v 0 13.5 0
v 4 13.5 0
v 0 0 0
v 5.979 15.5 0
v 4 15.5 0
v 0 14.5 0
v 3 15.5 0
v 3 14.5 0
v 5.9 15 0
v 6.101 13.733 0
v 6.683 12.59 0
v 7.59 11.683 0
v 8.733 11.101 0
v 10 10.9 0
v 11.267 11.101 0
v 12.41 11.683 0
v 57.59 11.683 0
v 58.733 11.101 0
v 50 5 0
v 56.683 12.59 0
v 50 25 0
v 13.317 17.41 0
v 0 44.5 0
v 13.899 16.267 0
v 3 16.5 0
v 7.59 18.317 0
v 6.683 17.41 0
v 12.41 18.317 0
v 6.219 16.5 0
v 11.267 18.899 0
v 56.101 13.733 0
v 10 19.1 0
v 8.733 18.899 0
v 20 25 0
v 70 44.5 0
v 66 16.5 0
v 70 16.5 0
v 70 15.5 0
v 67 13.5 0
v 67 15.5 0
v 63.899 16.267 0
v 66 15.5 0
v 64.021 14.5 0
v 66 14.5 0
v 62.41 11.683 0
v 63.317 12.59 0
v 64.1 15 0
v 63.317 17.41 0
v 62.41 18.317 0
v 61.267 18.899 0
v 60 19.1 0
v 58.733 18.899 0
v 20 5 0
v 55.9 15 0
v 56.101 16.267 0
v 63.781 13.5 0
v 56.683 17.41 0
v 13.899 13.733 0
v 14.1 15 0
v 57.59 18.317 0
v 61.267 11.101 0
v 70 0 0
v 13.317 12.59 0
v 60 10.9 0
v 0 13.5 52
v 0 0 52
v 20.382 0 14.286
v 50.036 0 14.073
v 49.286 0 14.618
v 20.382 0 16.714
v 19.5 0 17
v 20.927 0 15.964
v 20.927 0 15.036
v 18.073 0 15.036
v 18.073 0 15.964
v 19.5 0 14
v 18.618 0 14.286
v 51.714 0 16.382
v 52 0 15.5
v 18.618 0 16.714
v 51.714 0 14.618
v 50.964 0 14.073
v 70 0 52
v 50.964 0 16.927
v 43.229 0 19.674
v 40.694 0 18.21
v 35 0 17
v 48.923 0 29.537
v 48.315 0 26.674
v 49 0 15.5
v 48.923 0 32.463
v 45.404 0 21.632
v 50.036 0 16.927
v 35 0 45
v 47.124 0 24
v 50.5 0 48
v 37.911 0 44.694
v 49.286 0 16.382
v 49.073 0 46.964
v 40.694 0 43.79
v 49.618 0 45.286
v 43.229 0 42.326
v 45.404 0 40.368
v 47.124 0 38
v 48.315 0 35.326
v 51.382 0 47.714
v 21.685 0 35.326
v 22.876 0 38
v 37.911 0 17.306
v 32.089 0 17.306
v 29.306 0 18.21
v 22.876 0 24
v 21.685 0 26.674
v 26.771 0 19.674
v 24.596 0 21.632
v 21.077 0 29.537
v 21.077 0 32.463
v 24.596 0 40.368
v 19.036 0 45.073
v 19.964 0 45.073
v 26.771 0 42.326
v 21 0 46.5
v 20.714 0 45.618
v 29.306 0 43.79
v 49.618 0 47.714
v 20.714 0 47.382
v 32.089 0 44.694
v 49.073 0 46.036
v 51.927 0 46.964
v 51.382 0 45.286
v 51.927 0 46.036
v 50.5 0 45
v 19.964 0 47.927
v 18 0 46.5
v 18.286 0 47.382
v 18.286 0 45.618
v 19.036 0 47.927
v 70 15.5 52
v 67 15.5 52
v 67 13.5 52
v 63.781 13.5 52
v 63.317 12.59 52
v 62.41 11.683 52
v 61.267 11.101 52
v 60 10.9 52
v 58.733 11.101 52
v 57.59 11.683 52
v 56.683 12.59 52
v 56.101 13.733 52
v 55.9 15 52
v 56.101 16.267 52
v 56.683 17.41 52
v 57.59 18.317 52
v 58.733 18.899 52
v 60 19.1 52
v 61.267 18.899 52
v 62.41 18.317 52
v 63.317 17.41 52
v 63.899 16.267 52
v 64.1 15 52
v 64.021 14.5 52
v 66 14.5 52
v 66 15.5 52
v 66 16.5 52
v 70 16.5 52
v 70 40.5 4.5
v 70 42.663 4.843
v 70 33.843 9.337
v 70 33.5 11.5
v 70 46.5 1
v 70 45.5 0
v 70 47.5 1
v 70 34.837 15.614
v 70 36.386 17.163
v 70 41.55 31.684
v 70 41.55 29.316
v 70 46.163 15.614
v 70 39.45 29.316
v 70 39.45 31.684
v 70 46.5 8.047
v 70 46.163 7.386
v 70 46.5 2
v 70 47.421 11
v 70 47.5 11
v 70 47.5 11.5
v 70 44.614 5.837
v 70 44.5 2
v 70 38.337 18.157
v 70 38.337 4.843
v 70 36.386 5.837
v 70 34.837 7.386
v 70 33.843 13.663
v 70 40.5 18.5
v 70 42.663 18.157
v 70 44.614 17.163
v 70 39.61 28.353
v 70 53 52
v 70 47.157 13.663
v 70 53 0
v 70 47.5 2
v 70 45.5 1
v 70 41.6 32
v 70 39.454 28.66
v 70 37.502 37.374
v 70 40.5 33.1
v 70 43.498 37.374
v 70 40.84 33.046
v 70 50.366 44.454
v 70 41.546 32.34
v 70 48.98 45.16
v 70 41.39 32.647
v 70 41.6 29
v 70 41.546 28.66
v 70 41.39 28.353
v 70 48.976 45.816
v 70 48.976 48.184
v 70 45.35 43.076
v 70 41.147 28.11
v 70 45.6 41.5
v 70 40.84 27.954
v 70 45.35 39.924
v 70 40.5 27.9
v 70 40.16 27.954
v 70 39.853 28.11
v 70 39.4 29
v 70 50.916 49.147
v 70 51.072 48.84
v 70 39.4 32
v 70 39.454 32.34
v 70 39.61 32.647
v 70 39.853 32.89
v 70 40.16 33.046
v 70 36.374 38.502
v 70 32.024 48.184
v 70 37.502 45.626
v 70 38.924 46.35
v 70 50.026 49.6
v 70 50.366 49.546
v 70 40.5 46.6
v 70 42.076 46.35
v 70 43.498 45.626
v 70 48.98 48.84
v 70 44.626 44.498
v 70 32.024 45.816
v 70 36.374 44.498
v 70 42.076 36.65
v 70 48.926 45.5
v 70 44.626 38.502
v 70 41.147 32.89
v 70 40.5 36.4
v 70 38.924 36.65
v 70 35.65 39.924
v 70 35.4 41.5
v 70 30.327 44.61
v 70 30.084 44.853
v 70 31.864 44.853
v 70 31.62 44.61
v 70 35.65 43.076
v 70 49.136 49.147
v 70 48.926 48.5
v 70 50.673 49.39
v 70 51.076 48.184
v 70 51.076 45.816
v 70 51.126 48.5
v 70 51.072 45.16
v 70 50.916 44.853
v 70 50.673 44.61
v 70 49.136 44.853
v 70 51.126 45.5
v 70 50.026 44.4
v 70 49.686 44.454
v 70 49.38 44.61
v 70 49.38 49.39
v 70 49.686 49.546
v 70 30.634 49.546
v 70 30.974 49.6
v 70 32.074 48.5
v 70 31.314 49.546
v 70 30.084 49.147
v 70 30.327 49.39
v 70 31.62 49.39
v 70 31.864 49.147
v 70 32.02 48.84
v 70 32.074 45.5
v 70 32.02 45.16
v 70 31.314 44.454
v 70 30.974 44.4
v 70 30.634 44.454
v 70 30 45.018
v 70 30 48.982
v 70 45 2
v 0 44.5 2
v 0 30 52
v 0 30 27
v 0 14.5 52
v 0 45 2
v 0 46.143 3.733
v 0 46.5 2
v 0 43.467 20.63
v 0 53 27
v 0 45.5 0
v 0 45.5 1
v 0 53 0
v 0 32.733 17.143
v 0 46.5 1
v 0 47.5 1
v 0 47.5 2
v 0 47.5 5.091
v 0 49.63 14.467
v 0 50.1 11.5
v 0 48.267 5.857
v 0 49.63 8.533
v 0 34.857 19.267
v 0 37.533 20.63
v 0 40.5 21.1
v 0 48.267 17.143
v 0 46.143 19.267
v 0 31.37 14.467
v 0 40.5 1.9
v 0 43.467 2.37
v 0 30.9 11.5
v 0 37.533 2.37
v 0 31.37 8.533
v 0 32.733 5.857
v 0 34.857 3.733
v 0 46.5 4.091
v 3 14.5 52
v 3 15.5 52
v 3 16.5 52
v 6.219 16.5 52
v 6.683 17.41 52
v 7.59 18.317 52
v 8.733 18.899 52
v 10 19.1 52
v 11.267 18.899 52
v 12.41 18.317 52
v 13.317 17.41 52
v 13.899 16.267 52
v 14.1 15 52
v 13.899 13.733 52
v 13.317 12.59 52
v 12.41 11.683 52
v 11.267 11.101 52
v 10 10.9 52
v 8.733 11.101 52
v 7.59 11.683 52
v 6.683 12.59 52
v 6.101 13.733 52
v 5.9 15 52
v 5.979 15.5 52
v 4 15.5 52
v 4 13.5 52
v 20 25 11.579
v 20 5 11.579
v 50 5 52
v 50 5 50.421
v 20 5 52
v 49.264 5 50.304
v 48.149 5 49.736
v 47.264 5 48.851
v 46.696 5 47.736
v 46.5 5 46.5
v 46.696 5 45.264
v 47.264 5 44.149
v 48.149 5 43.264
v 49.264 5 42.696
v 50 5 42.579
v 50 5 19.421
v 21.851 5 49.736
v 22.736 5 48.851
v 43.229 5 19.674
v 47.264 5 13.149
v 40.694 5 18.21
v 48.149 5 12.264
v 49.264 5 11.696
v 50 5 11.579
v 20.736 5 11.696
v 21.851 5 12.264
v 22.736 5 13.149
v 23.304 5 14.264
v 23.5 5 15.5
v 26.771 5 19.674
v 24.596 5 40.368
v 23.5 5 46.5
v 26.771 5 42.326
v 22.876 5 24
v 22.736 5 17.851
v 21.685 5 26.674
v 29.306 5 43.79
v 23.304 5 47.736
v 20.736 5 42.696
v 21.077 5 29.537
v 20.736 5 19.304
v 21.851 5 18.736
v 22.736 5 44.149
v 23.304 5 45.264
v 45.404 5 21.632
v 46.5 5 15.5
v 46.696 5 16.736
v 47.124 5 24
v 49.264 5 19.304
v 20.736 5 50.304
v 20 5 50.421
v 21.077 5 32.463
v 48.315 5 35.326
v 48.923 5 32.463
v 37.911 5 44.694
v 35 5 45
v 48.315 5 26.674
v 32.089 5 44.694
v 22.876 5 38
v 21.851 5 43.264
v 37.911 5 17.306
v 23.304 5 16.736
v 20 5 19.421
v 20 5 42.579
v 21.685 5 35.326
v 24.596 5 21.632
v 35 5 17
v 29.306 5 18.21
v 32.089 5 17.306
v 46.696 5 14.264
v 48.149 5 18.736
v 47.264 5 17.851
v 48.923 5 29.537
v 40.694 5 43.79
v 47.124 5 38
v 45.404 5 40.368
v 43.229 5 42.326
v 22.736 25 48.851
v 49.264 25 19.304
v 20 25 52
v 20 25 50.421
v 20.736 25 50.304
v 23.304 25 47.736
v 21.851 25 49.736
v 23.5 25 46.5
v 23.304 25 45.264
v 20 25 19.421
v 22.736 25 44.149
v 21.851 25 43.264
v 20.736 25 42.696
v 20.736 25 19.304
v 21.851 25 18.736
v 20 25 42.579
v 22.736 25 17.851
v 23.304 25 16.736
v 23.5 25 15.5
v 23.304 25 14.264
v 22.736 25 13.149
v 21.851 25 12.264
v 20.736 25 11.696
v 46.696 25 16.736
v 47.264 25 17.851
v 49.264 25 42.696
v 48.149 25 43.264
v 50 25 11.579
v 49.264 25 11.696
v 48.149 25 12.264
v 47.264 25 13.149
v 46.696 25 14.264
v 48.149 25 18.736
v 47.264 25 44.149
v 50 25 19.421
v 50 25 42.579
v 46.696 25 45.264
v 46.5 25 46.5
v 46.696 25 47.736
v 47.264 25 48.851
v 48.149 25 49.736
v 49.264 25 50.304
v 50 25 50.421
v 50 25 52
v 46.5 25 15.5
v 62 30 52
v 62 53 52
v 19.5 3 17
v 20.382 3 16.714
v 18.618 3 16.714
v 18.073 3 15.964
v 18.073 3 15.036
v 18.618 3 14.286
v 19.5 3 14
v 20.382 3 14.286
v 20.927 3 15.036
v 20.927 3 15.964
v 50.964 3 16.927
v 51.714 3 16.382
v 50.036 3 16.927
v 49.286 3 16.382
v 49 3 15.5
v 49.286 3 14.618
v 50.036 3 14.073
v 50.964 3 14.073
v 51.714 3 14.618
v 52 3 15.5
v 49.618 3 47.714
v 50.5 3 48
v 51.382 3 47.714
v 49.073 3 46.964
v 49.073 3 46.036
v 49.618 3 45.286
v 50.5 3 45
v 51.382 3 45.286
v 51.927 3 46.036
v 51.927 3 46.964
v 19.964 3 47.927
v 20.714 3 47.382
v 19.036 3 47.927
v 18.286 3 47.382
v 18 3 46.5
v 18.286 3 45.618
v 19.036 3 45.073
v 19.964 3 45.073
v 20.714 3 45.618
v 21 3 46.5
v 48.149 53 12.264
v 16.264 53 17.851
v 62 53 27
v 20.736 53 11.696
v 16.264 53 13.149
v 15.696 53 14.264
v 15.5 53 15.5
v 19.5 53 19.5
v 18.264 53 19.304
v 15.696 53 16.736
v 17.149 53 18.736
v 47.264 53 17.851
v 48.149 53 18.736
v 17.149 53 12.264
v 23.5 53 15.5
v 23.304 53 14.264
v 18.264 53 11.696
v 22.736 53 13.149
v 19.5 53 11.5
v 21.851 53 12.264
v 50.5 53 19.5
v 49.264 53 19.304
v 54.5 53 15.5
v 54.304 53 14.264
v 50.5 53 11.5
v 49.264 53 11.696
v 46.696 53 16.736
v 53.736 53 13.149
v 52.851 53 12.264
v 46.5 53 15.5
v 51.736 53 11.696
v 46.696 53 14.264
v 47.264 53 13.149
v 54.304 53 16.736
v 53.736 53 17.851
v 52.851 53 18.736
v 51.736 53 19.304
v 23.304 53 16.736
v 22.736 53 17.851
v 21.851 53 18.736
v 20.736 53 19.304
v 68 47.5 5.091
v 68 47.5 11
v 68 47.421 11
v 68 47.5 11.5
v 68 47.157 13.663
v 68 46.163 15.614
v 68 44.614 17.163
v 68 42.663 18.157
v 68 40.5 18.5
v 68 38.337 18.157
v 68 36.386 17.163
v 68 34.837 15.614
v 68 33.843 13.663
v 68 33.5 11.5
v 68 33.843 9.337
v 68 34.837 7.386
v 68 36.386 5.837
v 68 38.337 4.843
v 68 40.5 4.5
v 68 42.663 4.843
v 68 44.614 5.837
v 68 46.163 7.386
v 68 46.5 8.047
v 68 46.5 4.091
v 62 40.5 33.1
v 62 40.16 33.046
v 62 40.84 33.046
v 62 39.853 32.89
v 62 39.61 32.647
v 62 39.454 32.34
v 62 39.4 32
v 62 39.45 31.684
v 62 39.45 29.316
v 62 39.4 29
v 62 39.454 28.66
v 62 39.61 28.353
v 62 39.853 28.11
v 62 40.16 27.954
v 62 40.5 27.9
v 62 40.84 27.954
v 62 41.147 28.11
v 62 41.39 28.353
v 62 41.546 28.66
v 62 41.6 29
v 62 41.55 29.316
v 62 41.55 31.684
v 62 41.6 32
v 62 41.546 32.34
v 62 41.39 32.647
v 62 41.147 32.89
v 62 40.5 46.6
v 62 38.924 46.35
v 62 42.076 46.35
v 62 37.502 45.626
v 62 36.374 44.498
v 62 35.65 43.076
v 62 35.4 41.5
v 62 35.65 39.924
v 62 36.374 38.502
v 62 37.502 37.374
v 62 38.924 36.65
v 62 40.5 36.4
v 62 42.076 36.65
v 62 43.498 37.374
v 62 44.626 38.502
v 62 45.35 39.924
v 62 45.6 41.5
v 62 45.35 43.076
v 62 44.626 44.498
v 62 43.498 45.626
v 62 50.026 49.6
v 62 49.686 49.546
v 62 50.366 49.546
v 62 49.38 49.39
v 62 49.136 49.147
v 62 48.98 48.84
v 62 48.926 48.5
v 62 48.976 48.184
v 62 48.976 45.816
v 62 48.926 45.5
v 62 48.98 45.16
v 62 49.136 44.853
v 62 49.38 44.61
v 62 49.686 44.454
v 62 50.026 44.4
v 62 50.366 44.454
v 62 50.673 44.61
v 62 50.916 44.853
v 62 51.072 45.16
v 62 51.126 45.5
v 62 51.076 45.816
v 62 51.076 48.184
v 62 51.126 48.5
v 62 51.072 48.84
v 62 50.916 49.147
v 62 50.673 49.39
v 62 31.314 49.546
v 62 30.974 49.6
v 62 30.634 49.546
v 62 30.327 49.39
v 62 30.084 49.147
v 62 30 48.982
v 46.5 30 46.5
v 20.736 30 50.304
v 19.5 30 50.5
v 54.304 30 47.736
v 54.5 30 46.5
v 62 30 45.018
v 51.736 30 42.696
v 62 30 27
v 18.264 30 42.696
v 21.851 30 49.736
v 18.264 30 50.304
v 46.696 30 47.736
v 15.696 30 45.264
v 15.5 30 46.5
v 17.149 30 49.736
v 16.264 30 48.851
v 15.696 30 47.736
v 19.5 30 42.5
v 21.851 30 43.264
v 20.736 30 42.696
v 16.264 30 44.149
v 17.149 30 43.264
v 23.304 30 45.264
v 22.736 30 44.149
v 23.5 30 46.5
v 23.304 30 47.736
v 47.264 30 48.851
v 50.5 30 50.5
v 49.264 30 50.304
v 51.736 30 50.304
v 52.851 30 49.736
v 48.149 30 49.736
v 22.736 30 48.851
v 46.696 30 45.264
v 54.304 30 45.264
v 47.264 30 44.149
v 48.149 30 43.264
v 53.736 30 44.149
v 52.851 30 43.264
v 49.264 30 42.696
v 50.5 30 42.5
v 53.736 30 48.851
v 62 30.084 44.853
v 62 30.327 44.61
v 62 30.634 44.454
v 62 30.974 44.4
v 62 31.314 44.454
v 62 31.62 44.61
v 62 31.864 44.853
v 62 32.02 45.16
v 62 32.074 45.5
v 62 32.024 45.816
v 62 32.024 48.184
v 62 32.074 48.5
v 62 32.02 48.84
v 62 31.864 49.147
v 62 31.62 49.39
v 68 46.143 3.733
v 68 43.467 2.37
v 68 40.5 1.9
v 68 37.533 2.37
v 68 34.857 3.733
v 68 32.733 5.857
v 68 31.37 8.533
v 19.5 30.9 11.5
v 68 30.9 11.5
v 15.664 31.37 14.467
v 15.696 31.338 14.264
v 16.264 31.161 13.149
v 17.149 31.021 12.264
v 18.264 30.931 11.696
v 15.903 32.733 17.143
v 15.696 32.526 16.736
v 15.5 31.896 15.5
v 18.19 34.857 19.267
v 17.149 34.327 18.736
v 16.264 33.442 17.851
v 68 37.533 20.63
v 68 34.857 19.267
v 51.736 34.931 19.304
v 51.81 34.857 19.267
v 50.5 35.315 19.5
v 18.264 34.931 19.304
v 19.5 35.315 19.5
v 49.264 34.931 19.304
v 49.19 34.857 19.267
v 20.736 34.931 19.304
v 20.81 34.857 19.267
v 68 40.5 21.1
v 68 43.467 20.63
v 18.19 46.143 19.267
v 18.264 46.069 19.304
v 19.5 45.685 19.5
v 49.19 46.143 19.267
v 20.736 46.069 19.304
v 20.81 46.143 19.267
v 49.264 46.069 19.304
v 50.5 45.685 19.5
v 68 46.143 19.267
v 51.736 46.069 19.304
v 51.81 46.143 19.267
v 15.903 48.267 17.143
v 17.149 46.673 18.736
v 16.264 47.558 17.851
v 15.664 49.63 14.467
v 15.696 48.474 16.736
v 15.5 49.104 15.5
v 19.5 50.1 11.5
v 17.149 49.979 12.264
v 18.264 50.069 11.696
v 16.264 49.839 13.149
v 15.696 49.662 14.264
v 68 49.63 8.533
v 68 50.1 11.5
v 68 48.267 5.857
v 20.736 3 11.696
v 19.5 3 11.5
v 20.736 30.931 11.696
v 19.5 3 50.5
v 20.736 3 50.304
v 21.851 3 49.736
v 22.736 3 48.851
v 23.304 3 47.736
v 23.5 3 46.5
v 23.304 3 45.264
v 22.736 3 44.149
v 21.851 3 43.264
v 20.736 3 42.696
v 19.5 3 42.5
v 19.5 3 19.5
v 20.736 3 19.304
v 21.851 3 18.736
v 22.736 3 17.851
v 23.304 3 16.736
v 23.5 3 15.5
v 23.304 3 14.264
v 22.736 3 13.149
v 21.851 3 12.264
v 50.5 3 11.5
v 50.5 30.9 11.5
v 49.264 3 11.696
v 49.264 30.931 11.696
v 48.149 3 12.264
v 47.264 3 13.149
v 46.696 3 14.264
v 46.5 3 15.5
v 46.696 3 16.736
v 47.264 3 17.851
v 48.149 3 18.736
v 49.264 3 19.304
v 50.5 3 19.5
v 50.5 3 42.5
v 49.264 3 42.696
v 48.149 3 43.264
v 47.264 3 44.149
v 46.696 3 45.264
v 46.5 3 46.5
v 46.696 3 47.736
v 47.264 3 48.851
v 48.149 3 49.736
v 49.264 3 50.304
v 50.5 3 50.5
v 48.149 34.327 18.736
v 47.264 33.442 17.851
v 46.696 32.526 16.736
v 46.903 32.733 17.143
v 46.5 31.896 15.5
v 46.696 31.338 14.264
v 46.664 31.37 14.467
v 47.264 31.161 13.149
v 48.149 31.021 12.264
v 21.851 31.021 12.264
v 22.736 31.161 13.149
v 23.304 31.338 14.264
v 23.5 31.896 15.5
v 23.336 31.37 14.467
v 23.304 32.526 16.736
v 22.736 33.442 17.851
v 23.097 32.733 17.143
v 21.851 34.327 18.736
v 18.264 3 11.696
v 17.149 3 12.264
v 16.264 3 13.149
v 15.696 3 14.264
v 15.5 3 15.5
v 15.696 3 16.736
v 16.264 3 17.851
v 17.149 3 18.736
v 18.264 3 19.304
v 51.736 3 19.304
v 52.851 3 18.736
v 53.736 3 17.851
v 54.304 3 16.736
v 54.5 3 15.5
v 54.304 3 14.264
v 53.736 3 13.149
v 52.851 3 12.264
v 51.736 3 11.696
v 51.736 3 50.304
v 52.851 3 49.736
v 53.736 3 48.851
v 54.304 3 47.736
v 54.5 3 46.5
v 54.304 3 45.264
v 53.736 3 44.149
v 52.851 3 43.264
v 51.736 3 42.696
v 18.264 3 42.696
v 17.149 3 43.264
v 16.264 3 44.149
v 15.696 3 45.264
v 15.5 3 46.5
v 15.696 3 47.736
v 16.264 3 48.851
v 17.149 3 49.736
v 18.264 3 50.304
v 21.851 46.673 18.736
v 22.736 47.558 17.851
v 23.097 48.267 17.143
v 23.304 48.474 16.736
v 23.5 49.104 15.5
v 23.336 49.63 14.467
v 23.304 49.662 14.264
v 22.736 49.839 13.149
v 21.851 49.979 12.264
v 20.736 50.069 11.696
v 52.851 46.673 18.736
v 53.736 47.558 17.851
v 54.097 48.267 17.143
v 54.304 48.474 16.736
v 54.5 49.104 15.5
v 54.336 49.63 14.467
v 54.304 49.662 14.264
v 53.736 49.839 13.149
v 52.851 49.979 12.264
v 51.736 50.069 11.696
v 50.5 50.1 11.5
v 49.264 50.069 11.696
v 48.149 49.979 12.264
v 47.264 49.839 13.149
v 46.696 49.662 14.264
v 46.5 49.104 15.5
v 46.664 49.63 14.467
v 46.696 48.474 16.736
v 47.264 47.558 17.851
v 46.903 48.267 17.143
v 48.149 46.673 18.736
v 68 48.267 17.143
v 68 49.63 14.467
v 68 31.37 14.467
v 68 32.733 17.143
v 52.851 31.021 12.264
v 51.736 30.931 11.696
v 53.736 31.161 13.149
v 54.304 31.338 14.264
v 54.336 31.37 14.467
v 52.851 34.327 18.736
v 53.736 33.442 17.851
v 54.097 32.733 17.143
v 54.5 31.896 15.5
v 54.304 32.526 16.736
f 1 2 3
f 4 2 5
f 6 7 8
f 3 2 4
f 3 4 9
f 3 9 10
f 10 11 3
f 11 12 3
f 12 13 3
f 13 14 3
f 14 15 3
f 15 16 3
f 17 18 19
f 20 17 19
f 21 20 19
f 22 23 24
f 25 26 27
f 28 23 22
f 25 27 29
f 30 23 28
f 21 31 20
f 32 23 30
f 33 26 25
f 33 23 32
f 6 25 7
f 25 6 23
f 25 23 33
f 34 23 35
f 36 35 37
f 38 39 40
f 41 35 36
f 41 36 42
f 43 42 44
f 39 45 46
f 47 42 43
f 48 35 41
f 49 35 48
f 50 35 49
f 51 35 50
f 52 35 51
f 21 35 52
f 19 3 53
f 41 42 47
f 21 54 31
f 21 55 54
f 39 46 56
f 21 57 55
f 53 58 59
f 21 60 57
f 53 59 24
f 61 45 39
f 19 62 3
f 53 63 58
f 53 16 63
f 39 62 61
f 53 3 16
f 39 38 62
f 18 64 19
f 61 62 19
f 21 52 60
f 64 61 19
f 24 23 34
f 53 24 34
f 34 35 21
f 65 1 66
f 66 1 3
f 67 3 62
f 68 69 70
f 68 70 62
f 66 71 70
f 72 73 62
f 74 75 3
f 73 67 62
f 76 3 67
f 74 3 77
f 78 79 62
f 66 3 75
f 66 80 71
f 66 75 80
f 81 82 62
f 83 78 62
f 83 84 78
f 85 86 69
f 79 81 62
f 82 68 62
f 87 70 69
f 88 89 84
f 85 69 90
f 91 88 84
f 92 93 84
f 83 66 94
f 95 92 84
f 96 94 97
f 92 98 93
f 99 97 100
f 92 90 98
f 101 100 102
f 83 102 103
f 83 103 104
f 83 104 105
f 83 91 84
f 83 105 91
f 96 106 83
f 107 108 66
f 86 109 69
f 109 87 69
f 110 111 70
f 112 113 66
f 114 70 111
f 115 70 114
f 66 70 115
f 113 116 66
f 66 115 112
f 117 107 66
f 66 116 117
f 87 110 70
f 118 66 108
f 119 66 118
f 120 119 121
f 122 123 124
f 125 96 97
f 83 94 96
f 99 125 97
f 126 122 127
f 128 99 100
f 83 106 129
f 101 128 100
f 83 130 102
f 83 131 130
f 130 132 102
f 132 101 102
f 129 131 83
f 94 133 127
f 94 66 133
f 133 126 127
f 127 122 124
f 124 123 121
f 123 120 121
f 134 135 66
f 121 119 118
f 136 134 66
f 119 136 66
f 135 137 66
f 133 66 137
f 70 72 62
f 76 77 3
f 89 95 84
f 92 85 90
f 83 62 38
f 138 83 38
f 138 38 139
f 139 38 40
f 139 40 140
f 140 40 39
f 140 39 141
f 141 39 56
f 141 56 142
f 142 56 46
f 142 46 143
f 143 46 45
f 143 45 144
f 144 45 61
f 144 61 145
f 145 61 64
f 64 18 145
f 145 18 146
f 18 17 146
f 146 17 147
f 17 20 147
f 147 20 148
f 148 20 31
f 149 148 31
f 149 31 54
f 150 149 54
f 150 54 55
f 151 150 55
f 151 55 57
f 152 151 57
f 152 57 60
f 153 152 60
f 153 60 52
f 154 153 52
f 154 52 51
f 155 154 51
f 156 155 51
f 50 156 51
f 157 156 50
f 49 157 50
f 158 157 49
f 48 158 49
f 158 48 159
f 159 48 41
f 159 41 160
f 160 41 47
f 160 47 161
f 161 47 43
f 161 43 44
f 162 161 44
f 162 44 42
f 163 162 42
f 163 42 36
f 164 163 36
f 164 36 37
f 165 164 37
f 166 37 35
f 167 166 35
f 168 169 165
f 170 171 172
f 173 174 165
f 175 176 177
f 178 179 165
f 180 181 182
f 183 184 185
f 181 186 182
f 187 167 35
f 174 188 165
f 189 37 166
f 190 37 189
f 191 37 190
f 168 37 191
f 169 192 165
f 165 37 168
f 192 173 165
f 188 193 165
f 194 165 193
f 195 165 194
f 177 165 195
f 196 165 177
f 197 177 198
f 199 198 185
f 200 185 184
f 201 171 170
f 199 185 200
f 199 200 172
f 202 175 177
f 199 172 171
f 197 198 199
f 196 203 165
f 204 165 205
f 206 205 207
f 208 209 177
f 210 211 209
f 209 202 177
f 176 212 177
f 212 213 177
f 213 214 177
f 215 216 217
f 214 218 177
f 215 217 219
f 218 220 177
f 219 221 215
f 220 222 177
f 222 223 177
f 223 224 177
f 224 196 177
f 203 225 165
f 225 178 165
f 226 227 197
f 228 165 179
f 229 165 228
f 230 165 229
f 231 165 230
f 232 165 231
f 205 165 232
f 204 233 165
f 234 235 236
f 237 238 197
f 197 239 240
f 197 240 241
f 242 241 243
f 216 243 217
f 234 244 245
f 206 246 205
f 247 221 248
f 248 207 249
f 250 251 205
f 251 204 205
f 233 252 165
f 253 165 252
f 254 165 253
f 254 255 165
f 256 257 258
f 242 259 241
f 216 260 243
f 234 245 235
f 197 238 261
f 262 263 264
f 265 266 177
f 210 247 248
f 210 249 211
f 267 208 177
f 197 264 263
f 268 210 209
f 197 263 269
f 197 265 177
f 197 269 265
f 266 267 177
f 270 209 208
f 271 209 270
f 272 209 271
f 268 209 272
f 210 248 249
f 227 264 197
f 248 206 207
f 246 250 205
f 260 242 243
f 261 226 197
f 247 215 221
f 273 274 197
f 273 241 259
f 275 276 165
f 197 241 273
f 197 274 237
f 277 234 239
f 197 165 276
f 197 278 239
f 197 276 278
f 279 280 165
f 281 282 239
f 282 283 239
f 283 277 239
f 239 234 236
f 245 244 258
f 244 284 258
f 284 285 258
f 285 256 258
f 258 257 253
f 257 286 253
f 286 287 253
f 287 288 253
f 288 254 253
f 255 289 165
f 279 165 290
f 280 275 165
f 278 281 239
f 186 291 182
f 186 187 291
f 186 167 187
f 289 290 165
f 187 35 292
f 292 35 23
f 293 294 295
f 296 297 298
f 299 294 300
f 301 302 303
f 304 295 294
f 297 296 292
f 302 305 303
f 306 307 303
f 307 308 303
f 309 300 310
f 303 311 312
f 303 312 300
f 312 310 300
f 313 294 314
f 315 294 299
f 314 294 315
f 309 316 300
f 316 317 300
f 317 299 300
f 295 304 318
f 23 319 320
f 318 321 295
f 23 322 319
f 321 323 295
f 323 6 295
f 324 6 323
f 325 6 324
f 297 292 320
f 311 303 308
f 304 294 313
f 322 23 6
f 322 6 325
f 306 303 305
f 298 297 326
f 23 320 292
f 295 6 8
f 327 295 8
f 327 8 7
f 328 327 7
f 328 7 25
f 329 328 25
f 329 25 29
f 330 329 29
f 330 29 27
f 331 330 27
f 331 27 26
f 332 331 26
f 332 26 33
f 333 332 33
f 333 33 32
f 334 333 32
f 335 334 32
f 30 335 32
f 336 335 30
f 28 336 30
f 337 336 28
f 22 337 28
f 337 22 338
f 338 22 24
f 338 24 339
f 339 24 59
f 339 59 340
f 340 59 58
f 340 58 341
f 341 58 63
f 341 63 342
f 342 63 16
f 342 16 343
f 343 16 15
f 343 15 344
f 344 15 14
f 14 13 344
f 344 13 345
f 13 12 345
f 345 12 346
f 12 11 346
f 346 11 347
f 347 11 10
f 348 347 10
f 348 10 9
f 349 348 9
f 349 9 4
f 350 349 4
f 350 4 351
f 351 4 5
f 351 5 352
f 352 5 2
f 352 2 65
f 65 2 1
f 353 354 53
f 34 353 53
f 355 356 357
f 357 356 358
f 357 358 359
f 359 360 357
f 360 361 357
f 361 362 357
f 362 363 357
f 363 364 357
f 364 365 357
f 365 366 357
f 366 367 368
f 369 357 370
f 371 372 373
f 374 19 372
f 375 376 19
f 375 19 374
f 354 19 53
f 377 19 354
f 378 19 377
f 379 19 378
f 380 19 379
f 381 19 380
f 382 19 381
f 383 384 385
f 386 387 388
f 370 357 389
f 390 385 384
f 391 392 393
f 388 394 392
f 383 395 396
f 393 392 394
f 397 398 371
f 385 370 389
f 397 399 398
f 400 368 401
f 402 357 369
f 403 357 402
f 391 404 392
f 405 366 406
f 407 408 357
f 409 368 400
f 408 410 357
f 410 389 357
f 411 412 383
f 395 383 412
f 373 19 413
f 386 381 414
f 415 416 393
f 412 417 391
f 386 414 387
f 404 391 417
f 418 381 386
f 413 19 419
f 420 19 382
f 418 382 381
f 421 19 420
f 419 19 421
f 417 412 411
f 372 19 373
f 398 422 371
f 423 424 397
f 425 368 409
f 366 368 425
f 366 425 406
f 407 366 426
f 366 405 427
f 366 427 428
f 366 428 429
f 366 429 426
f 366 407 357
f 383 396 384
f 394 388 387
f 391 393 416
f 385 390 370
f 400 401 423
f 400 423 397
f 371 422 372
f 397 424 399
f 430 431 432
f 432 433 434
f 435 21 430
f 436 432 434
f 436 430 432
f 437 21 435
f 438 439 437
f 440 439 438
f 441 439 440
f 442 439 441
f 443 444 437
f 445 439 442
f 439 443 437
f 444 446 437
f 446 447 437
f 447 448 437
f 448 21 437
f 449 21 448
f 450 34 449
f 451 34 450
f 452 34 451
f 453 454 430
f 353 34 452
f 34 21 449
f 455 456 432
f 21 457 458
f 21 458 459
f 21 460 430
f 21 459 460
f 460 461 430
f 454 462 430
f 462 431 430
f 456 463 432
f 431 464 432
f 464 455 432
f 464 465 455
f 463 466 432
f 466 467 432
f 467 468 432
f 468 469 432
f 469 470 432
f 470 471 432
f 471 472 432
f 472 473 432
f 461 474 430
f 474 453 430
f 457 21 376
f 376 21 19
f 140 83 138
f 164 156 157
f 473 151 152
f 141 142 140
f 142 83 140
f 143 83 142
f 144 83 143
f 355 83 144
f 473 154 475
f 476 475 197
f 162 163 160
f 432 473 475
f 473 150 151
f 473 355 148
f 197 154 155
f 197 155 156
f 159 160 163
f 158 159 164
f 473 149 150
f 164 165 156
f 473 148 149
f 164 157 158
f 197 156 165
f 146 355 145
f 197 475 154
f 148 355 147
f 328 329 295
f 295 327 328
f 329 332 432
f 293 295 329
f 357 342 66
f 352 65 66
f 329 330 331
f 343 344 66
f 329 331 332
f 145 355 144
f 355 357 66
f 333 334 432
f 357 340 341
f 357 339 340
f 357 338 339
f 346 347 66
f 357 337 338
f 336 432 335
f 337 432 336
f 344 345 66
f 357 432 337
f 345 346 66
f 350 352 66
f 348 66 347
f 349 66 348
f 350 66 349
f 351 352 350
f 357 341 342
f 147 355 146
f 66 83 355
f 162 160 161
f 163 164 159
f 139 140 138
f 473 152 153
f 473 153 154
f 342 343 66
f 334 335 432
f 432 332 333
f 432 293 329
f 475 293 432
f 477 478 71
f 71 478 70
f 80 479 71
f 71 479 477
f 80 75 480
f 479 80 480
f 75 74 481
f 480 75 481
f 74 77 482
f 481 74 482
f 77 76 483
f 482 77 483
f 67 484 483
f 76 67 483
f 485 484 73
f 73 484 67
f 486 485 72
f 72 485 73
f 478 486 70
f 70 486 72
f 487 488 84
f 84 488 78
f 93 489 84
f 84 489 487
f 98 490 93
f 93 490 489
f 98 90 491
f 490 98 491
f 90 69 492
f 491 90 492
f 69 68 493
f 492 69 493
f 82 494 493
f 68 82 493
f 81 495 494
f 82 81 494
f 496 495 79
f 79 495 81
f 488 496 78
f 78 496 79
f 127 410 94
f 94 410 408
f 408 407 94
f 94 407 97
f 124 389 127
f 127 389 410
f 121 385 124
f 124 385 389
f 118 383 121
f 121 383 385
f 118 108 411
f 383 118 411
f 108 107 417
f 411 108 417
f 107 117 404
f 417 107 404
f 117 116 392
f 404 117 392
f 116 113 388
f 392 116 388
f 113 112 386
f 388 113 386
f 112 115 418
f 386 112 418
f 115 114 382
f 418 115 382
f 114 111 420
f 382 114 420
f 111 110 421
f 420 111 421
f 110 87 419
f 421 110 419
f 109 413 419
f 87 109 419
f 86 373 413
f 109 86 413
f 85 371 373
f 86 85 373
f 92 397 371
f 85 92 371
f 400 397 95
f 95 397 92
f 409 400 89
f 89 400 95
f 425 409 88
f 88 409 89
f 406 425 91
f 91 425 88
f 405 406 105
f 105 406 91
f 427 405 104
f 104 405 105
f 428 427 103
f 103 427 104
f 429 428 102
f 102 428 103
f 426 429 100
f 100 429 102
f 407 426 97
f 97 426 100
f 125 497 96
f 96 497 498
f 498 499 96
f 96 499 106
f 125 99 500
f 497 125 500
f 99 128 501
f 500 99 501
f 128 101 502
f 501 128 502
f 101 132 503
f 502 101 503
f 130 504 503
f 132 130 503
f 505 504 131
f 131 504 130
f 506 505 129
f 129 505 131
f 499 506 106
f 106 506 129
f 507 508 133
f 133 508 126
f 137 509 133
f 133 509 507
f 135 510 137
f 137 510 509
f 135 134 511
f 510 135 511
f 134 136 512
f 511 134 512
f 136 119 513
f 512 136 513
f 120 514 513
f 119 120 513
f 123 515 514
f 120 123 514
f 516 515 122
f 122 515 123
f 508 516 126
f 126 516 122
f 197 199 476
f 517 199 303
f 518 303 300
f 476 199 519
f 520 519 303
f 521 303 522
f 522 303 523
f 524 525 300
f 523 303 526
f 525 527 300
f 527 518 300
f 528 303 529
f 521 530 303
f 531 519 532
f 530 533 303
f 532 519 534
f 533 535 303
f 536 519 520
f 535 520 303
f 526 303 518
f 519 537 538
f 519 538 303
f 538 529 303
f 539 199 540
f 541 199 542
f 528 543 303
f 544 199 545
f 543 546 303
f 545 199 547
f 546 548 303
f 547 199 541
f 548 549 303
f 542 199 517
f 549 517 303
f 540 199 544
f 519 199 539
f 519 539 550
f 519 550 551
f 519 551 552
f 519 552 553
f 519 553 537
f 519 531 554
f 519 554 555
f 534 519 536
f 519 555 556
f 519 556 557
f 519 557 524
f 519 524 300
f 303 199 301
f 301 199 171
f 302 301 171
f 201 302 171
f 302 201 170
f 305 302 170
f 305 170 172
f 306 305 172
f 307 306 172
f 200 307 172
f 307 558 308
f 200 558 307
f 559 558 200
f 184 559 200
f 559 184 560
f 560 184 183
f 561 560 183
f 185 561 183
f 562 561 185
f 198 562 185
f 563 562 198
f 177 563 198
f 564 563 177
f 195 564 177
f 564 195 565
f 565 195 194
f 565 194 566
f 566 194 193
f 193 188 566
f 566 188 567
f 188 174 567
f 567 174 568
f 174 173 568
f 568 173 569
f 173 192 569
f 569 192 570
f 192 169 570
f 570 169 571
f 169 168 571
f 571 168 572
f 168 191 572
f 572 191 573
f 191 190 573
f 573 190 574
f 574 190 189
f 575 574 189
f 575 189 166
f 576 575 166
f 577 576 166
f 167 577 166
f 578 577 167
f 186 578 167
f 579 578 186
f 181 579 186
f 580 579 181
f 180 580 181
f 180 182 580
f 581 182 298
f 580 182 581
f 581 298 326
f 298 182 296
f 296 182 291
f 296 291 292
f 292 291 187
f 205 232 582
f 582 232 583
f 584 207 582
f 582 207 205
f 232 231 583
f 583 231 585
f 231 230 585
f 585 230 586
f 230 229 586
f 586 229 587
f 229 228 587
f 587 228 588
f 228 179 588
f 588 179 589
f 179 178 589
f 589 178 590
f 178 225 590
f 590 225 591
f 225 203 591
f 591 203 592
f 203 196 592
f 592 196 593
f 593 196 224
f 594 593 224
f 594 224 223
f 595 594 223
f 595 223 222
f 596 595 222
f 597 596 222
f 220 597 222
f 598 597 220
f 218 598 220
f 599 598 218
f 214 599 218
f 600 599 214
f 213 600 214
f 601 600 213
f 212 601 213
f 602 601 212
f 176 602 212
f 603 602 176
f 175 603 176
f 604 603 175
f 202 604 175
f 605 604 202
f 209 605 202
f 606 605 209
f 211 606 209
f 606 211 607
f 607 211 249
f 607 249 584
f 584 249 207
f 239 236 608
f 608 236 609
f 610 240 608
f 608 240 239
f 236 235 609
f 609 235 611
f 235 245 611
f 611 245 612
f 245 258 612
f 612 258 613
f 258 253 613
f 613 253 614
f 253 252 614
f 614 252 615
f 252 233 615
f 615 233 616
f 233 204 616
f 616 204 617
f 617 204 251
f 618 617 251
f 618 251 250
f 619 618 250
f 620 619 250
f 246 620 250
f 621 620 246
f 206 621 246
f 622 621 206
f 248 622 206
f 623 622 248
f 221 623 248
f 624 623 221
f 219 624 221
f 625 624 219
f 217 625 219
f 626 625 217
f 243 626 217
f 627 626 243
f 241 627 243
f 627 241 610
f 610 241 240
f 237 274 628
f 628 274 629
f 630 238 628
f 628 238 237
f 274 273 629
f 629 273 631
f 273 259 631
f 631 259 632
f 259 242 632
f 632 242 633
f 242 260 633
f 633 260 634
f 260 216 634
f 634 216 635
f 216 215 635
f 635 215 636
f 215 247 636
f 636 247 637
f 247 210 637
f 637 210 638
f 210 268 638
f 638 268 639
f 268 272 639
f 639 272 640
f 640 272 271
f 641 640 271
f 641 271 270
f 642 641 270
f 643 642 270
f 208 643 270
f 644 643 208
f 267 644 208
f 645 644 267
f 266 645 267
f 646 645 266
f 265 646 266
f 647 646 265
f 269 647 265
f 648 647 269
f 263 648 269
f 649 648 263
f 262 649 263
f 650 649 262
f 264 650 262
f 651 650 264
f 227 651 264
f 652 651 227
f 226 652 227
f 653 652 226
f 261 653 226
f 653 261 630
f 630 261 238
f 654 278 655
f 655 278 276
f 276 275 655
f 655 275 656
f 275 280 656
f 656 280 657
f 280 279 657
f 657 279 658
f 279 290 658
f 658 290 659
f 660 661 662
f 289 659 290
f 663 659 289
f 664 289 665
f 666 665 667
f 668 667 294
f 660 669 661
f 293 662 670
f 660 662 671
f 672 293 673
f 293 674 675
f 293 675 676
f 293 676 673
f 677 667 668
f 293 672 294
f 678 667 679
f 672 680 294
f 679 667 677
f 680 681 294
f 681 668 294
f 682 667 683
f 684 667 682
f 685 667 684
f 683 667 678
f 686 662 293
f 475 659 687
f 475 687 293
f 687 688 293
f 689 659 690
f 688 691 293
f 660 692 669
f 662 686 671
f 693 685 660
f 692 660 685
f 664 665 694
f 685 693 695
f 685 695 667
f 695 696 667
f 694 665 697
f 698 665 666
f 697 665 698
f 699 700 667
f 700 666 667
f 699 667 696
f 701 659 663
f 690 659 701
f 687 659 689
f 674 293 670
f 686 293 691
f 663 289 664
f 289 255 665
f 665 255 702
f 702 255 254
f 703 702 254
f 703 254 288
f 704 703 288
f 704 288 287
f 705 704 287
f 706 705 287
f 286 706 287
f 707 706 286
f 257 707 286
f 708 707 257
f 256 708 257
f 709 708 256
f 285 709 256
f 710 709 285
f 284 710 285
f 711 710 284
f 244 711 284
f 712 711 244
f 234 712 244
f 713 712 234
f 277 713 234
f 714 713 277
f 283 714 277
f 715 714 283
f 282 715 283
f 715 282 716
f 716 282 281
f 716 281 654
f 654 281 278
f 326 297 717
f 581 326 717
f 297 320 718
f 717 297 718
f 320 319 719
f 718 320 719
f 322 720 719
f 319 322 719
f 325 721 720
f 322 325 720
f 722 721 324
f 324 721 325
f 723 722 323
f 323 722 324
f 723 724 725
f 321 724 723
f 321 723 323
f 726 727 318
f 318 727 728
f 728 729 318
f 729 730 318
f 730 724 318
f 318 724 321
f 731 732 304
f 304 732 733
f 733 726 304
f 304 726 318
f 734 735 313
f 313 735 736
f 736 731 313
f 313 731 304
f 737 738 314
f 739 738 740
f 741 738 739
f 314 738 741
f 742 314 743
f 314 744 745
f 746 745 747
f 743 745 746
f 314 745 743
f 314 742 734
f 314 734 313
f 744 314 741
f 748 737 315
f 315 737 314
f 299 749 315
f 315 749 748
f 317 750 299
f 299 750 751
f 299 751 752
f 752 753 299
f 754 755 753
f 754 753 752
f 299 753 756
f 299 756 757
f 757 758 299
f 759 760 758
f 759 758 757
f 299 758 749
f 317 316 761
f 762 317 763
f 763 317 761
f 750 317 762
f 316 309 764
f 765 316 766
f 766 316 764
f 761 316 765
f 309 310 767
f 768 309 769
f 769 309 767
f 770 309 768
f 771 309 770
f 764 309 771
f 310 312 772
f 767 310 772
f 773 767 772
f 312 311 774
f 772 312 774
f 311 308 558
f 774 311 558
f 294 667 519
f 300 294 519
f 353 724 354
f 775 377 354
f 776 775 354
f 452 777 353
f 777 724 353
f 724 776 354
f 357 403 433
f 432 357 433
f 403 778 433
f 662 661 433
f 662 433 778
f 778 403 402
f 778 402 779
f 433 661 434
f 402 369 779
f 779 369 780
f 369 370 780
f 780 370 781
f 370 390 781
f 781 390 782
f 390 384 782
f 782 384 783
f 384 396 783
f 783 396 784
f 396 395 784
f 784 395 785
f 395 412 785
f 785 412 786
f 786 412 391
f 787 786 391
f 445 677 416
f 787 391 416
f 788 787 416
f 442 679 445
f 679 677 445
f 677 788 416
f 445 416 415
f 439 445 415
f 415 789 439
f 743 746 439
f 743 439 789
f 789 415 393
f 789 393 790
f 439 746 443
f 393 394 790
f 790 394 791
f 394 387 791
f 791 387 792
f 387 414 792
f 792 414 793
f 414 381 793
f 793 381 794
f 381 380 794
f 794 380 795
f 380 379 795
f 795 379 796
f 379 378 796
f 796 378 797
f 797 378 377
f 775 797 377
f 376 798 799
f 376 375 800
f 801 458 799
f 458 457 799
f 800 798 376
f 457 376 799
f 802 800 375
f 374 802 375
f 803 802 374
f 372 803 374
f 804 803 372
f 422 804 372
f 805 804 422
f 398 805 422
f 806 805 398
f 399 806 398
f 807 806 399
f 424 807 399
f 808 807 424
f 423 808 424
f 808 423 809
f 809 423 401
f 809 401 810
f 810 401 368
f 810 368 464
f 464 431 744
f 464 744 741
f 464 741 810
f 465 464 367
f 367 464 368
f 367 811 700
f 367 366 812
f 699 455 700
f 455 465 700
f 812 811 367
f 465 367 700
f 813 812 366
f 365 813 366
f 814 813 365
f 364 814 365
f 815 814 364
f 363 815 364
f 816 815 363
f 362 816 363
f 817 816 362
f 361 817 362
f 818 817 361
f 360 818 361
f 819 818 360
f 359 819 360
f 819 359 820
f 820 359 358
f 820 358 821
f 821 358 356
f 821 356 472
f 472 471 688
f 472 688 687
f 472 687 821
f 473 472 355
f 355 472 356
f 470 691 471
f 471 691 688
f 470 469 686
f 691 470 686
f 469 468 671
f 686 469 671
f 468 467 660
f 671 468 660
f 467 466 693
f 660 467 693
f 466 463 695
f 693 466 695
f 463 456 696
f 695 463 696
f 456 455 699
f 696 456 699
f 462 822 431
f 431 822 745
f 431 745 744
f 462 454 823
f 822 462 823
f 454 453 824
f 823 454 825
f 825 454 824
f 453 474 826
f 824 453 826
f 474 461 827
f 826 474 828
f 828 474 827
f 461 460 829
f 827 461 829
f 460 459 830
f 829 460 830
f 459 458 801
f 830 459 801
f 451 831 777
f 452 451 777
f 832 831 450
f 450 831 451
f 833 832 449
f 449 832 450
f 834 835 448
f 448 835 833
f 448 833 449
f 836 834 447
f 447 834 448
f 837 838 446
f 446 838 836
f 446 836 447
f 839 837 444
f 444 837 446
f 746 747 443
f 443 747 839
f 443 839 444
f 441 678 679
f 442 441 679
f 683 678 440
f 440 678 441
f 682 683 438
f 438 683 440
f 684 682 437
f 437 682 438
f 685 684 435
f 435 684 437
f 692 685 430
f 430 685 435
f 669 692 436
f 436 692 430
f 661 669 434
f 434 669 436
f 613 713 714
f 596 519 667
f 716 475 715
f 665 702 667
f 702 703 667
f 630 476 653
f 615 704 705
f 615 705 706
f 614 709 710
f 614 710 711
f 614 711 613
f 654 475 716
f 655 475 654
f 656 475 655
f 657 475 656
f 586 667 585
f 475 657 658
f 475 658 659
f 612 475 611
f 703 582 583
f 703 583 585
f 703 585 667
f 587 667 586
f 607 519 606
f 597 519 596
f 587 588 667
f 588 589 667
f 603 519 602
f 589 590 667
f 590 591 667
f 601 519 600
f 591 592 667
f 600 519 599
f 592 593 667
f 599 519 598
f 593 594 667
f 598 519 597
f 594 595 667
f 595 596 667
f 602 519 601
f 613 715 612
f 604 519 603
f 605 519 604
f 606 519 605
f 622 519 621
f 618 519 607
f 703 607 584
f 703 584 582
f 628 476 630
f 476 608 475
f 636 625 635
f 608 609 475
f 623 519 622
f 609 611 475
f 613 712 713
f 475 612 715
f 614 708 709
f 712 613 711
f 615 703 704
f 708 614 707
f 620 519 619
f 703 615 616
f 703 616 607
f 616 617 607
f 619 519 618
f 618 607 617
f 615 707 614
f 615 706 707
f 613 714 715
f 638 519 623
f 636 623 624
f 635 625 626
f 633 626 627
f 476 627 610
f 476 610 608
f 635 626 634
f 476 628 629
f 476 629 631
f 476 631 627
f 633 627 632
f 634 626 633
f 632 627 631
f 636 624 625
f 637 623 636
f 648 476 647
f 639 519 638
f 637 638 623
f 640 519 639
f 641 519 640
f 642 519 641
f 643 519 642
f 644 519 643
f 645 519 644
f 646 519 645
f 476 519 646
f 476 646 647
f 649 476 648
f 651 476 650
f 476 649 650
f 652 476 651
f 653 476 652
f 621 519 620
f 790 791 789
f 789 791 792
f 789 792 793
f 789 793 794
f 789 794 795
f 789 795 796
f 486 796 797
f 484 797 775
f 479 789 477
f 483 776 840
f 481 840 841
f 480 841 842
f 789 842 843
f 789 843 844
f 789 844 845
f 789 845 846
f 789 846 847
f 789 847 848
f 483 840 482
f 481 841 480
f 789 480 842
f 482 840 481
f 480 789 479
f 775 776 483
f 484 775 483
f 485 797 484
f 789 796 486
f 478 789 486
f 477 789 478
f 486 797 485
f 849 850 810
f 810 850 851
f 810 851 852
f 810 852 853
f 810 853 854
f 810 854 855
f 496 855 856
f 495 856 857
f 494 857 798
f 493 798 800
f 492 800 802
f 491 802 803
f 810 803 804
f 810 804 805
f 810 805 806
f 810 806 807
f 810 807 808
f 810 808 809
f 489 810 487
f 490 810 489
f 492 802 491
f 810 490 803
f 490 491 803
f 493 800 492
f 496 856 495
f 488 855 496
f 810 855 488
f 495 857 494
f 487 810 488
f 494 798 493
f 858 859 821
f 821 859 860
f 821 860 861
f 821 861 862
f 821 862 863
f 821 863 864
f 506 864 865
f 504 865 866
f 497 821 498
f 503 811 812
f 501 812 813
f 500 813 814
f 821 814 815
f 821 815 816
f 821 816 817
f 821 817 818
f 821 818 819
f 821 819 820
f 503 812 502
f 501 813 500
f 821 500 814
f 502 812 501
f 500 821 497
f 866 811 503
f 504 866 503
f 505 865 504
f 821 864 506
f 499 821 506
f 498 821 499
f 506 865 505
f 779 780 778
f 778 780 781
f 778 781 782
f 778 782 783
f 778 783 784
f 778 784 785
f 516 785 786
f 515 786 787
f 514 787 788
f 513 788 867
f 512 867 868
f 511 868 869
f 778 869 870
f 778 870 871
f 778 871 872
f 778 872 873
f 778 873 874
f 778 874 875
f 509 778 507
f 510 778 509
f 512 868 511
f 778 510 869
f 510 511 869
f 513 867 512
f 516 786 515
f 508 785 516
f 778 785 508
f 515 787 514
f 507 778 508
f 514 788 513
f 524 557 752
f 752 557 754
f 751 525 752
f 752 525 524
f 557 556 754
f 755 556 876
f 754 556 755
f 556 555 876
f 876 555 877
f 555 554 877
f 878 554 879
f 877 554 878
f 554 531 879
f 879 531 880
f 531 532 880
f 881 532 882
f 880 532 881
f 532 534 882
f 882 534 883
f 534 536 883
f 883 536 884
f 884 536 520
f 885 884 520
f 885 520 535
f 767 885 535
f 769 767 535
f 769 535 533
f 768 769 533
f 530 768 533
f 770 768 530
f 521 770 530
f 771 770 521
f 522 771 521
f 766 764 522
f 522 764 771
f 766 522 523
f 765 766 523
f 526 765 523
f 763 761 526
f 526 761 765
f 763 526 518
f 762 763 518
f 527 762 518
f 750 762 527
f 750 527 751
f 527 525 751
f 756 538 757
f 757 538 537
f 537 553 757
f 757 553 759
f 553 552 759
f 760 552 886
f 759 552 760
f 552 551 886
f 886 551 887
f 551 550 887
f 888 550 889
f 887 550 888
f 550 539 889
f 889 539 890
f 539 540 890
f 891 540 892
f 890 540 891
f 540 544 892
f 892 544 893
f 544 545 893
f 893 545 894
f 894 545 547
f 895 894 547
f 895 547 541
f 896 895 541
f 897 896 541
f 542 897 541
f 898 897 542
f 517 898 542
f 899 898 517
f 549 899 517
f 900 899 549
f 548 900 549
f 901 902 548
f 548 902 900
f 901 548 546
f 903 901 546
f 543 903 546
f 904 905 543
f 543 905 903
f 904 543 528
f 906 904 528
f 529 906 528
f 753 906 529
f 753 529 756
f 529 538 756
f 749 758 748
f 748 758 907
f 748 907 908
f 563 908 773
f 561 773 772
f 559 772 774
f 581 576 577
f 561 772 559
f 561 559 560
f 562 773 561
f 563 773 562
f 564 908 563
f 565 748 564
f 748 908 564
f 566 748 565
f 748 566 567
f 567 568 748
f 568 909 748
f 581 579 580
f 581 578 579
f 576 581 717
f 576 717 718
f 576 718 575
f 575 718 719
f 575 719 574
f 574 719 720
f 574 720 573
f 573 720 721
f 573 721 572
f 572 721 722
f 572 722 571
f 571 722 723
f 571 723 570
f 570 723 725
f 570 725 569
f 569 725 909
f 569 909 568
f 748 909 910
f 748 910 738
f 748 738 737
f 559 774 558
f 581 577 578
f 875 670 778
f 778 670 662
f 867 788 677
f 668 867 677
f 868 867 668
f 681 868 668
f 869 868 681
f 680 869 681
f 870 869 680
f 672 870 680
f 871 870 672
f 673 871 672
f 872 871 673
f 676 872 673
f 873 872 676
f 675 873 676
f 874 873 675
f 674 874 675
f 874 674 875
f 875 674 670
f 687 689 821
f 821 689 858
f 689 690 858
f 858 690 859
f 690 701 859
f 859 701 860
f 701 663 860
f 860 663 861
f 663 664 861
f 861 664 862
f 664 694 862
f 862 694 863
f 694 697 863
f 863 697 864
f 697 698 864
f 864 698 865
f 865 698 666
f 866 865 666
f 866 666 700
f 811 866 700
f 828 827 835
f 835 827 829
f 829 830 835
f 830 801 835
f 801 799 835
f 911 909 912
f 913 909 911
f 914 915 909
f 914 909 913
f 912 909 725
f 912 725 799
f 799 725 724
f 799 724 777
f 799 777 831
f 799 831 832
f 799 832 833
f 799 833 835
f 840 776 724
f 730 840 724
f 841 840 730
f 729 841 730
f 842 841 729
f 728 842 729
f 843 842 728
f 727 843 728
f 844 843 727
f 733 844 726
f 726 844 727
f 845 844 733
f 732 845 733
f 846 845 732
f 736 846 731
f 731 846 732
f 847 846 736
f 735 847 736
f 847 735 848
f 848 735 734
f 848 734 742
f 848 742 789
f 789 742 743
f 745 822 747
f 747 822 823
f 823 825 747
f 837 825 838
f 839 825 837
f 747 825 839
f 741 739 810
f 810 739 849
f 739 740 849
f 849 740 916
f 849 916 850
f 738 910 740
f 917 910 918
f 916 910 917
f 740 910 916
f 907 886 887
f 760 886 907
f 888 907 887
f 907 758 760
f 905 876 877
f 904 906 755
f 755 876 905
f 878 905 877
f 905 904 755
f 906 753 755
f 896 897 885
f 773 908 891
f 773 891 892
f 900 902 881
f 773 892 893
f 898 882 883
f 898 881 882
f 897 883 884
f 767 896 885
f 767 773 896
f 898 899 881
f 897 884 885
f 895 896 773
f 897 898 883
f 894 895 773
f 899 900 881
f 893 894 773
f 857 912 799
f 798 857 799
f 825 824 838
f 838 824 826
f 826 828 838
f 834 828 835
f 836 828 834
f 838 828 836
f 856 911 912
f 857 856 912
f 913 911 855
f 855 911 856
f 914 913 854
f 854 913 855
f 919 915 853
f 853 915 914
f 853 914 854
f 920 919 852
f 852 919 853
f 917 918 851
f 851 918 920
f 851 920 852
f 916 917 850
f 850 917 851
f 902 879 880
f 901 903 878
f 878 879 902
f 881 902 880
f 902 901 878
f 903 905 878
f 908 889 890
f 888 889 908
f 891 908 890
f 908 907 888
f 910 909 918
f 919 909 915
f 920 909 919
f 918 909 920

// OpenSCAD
// file: libs/config.scad
holes_extra_radius_compensation = 0.1;

z_axis_shaft_diameter = 10;
z_linear_bearing_outside_diameter = 19;
z_linear_bearing_length = 29;
z_shaft_to_leadscrew_distance = 20/2 + 42/2;  // Half a t-slot + half a stepper motor
z_leadscrew_diameter = 8;
z_leadscrew_nut_screw_diameter = 2;

x_axis_shaft_diameter = 8;
x_axis_pressure_slot_width = 1;
x_end_box_height = 70;

junction_assurance_length = 1;
// main file
// x-stepper-end is the left end of the X axis, it holds the stepper motor, is attached to the Z shaft with 
// linear ball bearings, and is moved by the Z leadscrew
// It also holds the two X shafts
// It is derived from the base x-end ( x_end_base )

include <libs/config.scad>;
include <base-components/x-end-base.scad>;

rotate(a=[0,90,0]){ x_motor_end(); }

module x_motor_end(){

    // Mirror the object as the base solid is the wrong way for this
    mirror([1,0,0]){ 

        difference(){
            
            // Base x-end solid : as both are a mirror, we only code it once
            x_end_base(); 

            // Remove extraneous solid
            translate([52,-junction_assurance_length,-junction_assurance_length]){
                cube([200,200,200]);
            }
       
            // NEMA17 stepper motor holes 
            translate([42/2+10,junction_assurance_length,x_end_box_height/2]){
                rotate(a=[90,0,0]){
                    // Central hole for stepper shaft and center
                    cylinder(h=10, r=28/2, center=true, $fn=30); 

                    // Holes for 4 fixation screws
                    for(rotation = [0:3]){
                        rotate(a=[0,0,rotation*90]){
                            translate([31/2,31/2,0]){
                                cylinder(h=200, r=3/2, center=true, $fn=10);
                                translate([0,0,-52]){ 
                                    cylinder(h=100, r=8/2, center=true, $fn=20);
                                }
                            }
                        }
                    }
                }
            }
        }
    }
}
